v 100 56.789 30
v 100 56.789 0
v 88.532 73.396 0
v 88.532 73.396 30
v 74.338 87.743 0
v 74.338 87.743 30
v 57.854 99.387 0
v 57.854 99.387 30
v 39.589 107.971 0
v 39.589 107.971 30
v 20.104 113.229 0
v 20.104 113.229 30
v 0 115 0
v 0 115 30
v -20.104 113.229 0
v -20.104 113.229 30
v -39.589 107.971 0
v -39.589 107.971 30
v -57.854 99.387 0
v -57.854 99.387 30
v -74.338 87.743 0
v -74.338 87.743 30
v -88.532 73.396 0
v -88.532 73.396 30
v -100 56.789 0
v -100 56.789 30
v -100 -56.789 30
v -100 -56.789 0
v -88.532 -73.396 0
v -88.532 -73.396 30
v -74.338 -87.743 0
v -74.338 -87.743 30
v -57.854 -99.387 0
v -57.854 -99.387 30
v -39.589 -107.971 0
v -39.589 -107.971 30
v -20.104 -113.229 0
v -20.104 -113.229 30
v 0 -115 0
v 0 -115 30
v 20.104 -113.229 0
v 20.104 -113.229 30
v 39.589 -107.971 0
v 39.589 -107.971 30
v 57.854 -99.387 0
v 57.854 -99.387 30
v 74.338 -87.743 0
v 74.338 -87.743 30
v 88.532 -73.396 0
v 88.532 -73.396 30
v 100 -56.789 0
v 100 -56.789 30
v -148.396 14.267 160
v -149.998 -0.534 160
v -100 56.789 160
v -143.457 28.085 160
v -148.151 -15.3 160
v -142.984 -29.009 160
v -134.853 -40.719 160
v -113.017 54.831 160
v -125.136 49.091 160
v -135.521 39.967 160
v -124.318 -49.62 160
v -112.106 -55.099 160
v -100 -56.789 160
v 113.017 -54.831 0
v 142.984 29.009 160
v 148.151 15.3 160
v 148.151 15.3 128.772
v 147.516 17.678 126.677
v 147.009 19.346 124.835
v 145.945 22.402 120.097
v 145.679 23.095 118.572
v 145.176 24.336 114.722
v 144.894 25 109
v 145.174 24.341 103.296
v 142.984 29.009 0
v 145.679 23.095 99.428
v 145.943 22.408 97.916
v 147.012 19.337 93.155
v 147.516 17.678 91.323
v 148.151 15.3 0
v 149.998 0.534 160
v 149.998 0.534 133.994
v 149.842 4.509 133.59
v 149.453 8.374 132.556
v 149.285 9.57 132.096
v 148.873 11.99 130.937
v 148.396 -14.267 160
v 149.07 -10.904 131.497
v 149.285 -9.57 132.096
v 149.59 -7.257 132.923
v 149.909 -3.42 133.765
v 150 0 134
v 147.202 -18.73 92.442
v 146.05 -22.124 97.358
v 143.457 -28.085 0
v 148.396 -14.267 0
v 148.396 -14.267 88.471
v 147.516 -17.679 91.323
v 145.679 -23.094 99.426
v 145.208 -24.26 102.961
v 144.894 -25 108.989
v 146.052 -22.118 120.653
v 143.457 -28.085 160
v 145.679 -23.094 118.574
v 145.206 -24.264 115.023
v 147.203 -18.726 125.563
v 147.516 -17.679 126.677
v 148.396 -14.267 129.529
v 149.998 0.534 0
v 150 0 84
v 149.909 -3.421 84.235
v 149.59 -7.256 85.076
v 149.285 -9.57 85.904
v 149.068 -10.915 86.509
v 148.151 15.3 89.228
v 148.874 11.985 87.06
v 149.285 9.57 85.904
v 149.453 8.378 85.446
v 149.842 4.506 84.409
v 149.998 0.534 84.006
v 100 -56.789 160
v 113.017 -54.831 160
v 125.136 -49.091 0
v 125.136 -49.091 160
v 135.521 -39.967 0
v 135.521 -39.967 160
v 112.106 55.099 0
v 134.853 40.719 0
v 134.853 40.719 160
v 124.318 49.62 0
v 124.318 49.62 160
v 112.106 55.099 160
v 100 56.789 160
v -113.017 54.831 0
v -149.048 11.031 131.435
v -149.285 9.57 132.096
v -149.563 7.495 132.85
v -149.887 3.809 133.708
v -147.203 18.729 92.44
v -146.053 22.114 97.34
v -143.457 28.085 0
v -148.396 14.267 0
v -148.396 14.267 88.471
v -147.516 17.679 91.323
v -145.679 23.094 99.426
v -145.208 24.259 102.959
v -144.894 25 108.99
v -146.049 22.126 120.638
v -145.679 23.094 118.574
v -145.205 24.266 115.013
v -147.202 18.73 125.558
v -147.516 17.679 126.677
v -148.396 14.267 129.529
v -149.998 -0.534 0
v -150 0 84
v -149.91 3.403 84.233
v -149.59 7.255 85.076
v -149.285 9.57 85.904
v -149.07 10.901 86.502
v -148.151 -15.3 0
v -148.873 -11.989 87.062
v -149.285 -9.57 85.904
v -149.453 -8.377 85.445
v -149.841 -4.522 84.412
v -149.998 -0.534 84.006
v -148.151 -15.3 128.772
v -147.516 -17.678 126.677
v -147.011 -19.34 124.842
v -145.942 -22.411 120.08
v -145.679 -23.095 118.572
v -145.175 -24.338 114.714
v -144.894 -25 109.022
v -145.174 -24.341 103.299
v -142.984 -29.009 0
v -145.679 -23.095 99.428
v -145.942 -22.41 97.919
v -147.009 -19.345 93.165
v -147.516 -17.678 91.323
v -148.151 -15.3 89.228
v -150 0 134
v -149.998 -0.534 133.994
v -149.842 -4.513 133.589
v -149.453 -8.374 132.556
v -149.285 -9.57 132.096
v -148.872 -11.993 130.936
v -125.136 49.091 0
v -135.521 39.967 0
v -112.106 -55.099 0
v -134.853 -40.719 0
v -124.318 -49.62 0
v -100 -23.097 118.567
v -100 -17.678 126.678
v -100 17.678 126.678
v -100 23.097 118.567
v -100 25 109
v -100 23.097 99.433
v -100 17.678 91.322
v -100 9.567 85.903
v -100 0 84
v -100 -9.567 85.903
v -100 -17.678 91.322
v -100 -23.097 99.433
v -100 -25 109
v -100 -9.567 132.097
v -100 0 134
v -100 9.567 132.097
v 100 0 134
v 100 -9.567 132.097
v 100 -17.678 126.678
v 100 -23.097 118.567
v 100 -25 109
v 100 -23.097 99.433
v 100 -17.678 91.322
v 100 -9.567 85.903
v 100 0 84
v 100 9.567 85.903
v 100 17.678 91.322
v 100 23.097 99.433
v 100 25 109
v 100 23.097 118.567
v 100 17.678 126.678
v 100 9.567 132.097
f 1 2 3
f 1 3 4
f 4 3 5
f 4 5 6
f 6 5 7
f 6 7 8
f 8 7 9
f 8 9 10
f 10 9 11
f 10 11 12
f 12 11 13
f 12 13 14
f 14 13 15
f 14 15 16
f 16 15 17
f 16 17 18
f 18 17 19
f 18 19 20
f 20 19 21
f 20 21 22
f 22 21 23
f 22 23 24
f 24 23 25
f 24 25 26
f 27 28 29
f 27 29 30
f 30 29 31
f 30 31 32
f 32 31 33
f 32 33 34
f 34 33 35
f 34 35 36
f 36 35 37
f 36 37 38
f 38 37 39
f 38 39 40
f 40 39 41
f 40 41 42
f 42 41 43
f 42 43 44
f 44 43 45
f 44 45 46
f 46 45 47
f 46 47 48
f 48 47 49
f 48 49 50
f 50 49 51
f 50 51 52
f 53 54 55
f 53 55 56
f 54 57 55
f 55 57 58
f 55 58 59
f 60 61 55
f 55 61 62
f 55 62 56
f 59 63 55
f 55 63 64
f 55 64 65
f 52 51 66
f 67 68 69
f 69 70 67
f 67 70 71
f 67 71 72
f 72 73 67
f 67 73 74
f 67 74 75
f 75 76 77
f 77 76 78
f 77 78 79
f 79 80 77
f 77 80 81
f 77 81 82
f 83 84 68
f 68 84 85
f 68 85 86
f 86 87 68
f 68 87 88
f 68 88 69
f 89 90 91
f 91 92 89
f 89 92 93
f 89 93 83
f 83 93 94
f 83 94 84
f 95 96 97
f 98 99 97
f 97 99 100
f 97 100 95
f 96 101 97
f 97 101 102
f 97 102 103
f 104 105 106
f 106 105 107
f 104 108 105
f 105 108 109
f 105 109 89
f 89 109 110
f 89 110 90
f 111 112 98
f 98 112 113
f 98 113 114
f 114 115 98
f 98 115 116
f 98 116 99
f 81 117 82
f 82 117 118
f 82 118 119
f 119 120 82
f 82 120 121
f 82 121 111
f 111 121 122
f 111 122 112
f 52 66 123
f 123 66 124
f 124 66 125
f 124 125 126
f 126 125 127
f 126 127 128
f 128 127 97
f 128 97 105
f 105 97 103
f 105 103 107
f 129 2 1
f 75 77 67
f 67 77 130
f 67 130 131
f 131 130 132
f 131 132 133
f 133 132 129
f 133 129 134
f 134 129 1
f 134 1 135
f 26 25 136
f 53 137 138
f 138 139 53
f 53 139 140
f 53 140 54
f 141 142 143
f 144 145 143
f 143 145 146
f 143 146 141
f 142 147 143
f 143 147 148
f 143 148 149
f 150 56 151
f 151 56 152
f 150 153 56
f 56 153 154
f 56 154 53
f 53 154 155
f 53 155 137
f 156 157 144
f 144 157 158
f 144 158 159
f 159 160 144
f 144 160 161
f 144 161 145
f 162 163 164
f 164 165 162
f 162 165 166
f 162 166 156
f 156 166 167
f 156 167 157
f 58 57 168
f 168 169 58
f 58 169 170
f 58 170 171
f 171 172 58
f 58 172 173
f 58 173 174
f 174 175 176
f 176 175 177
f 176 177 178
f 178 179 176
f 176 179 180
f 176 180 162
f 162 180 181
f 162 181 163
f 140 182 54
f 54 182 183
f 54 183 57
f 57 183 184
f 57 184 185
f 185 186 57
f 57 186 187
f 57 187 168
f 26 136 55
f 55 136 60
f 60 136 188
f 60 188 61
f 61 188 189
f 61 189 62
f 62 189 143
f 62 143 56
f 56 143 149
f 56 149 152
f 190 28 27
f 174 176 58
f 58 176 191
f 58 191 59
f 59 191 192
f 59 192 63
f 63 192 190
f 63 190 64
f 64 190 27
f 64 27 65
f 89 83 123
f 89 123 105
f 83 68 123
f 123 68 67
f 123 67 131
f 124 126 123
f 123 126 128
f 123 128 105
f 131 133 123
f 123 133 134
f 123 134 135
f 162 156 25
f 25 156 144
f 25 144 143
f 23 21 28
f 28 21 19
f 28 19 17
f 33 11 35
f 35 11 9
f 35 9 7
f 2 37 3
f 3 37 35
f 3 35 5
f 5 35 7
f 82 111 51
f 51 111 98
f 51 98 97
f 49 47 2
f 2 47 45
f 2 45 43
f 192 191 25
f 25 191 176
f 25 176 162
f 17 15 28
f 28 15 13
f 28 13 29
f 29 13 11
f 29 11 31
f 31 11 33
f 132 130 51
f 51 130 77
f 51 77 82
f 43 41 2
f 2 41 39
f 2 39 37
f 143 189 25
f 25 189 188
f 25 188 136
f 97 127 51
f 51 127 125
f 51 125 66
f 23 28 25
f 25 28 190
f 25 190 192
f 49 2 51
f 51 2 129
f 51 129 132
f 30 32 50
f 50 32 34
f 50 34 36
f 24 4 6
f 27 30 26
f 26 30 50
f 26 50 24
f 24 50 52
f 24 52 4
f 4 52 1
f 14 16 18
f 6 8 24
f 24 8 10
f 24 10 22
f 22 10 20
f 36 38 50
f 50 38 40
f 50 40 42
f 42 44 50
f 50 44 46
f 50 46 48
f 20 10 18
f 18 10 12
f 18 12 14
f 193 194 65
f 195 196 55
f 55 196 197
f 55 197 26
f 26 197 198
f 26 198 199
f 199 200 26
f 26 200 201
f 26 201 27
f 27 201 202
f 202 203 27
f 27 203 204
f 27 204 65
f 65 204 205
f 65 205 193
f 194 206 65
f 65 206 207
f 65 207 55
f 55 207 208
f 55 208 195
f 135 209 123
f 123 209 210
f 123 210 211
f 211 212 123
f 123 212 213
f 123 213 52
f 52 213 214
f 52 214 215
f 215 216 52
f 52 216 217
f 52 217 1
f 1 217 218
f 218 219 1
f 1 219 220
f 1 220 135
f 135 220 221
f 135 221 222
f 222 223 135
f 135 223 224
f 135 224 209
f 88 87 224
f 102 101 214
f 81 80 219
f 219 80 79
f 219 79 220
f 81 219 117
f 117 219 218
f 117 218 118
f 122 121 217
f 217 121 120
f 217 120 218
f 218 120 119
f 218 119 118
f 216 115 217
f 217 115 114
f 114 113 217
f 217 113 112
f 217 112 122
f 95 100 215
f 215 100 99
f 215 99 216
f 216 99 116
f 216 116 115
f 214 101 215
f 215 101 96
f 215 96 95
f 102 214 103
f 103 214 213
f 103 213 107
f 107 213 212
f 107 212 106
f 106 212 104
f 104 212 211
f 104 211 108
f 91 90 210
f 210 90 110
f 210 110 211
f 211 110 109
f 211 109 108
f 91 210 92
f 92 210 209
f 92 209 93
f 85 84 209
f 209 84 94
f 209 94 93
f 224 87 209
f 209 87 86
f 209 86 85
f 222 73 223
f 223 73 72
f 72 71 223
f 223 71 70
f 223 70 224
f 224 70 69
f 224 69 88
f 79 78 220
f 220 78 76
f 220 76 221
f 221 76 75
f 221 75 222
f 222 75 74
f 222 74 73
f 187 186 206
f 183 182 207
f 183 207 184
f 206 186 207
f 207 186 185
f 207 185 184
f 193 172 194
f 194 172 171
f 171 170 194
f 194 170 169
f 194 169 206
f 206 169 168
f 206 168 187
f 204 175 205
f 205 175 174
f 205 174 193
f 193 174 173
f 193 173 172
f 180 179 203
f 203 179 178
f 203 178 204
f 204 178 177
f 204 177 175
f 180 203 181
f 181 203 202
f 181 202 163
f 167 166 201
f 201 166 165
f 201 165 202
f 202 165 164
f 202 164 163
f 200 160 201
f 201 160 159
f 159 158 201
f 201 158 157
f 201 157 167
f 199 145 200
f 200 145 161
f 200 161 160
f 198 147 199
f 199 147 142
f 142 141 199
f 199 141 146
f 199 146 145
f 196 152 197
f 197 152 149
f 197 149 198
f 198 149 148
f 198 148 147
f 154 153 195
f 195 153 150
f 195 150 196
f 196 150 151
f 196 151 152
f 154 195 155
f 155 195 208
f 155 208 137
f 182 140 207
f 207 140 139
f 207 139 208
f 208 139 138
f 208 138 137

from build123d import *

# Parameters (mm, degrees)
BOSS_EXTRUDE1_DEPTH     = 160
SKETCH3_W               = 200
SKETCH3_H               = 247.224329698
CUT_EXTRUDE1_DEPTH      = 130
SKETCH4_R               = 25
CUT_EXTRUDE2_DEPTH      = 251.0000001
CUT_EXTRUDE2_DEPTH_BACK = 51.0000001


with BuildPart() as part:
    # Sketch1 → Boss-Extrude1 (new body)
    with BuildSketch(Plane.XY):
        with BuildLine():
            ThreePointArc((-100, -56.789083458), (0, -115), (100, -56.789083458))
            add(Edge.make_bspline(
                [(100, -56.789083458), (150, -56.789083458), (150, 0), (150, 56.789083458), (100, 56.789083458)],
                knots=[3.141592654, 3.141592654, 3.141592654, 4.71238898, 4.71238898, 6.283185307, 6.283185307, 6.283185307], degree=2, weights=[1, 0.707106781, 1, 0.707106781, 1]))
            ThreePointArc((100, 56.789083458), (0, 115), (-100, 56.789083458))
            add(Edge.make_bspline(
                [(-100, 56.789083458), (-150, 56.789083458), (-150, 0), (-150, -56.789083458), (-100, -56.789083458)],
                knots=[3.141592654, 3.141592654, 3.141592654, 4.71238898, 4.71238898, 6.283185307, 6.283185307, 6.283185307], degree=2, weights=[1, 0.707106781, 1, 0.707106781, 1]))
        make_face()
    extrude(amount=BOSS_EXTRUDE1_DEPTH)

    # Sketch3 → Cut-Extrude1 (cut)
    with BuildSketch(Plane.XY.offset(160)):
        Rectangle(SKETCH3_W, SKETCH3_H)
    extrude(amount=-CUT_EXTRUDE1_DEPTH, mode=Mode.SUBTRACT)

    # Sketch4 → Cut-Extrude2 (cut, two sides)
    with BuildSketch(Plane(origin=(-100, 0, 0), x_dir=(0, 0, -1), z_dir=(1, 0, 0))) as cut_extrude2_sk:
        with Locations((-109, 0)):
            Circle(SKETCH4_R)
    extrude(amount=CUT_EXTRUDE2_DEPTH, mode=Mode.SUBTRACT)
    extrude(cut_extrude2_sk.sketch, amount=-CUT_EXTRUDE2_DEPTH_BACK, mode=Mode.SUBTRACT)


solid = part.part
